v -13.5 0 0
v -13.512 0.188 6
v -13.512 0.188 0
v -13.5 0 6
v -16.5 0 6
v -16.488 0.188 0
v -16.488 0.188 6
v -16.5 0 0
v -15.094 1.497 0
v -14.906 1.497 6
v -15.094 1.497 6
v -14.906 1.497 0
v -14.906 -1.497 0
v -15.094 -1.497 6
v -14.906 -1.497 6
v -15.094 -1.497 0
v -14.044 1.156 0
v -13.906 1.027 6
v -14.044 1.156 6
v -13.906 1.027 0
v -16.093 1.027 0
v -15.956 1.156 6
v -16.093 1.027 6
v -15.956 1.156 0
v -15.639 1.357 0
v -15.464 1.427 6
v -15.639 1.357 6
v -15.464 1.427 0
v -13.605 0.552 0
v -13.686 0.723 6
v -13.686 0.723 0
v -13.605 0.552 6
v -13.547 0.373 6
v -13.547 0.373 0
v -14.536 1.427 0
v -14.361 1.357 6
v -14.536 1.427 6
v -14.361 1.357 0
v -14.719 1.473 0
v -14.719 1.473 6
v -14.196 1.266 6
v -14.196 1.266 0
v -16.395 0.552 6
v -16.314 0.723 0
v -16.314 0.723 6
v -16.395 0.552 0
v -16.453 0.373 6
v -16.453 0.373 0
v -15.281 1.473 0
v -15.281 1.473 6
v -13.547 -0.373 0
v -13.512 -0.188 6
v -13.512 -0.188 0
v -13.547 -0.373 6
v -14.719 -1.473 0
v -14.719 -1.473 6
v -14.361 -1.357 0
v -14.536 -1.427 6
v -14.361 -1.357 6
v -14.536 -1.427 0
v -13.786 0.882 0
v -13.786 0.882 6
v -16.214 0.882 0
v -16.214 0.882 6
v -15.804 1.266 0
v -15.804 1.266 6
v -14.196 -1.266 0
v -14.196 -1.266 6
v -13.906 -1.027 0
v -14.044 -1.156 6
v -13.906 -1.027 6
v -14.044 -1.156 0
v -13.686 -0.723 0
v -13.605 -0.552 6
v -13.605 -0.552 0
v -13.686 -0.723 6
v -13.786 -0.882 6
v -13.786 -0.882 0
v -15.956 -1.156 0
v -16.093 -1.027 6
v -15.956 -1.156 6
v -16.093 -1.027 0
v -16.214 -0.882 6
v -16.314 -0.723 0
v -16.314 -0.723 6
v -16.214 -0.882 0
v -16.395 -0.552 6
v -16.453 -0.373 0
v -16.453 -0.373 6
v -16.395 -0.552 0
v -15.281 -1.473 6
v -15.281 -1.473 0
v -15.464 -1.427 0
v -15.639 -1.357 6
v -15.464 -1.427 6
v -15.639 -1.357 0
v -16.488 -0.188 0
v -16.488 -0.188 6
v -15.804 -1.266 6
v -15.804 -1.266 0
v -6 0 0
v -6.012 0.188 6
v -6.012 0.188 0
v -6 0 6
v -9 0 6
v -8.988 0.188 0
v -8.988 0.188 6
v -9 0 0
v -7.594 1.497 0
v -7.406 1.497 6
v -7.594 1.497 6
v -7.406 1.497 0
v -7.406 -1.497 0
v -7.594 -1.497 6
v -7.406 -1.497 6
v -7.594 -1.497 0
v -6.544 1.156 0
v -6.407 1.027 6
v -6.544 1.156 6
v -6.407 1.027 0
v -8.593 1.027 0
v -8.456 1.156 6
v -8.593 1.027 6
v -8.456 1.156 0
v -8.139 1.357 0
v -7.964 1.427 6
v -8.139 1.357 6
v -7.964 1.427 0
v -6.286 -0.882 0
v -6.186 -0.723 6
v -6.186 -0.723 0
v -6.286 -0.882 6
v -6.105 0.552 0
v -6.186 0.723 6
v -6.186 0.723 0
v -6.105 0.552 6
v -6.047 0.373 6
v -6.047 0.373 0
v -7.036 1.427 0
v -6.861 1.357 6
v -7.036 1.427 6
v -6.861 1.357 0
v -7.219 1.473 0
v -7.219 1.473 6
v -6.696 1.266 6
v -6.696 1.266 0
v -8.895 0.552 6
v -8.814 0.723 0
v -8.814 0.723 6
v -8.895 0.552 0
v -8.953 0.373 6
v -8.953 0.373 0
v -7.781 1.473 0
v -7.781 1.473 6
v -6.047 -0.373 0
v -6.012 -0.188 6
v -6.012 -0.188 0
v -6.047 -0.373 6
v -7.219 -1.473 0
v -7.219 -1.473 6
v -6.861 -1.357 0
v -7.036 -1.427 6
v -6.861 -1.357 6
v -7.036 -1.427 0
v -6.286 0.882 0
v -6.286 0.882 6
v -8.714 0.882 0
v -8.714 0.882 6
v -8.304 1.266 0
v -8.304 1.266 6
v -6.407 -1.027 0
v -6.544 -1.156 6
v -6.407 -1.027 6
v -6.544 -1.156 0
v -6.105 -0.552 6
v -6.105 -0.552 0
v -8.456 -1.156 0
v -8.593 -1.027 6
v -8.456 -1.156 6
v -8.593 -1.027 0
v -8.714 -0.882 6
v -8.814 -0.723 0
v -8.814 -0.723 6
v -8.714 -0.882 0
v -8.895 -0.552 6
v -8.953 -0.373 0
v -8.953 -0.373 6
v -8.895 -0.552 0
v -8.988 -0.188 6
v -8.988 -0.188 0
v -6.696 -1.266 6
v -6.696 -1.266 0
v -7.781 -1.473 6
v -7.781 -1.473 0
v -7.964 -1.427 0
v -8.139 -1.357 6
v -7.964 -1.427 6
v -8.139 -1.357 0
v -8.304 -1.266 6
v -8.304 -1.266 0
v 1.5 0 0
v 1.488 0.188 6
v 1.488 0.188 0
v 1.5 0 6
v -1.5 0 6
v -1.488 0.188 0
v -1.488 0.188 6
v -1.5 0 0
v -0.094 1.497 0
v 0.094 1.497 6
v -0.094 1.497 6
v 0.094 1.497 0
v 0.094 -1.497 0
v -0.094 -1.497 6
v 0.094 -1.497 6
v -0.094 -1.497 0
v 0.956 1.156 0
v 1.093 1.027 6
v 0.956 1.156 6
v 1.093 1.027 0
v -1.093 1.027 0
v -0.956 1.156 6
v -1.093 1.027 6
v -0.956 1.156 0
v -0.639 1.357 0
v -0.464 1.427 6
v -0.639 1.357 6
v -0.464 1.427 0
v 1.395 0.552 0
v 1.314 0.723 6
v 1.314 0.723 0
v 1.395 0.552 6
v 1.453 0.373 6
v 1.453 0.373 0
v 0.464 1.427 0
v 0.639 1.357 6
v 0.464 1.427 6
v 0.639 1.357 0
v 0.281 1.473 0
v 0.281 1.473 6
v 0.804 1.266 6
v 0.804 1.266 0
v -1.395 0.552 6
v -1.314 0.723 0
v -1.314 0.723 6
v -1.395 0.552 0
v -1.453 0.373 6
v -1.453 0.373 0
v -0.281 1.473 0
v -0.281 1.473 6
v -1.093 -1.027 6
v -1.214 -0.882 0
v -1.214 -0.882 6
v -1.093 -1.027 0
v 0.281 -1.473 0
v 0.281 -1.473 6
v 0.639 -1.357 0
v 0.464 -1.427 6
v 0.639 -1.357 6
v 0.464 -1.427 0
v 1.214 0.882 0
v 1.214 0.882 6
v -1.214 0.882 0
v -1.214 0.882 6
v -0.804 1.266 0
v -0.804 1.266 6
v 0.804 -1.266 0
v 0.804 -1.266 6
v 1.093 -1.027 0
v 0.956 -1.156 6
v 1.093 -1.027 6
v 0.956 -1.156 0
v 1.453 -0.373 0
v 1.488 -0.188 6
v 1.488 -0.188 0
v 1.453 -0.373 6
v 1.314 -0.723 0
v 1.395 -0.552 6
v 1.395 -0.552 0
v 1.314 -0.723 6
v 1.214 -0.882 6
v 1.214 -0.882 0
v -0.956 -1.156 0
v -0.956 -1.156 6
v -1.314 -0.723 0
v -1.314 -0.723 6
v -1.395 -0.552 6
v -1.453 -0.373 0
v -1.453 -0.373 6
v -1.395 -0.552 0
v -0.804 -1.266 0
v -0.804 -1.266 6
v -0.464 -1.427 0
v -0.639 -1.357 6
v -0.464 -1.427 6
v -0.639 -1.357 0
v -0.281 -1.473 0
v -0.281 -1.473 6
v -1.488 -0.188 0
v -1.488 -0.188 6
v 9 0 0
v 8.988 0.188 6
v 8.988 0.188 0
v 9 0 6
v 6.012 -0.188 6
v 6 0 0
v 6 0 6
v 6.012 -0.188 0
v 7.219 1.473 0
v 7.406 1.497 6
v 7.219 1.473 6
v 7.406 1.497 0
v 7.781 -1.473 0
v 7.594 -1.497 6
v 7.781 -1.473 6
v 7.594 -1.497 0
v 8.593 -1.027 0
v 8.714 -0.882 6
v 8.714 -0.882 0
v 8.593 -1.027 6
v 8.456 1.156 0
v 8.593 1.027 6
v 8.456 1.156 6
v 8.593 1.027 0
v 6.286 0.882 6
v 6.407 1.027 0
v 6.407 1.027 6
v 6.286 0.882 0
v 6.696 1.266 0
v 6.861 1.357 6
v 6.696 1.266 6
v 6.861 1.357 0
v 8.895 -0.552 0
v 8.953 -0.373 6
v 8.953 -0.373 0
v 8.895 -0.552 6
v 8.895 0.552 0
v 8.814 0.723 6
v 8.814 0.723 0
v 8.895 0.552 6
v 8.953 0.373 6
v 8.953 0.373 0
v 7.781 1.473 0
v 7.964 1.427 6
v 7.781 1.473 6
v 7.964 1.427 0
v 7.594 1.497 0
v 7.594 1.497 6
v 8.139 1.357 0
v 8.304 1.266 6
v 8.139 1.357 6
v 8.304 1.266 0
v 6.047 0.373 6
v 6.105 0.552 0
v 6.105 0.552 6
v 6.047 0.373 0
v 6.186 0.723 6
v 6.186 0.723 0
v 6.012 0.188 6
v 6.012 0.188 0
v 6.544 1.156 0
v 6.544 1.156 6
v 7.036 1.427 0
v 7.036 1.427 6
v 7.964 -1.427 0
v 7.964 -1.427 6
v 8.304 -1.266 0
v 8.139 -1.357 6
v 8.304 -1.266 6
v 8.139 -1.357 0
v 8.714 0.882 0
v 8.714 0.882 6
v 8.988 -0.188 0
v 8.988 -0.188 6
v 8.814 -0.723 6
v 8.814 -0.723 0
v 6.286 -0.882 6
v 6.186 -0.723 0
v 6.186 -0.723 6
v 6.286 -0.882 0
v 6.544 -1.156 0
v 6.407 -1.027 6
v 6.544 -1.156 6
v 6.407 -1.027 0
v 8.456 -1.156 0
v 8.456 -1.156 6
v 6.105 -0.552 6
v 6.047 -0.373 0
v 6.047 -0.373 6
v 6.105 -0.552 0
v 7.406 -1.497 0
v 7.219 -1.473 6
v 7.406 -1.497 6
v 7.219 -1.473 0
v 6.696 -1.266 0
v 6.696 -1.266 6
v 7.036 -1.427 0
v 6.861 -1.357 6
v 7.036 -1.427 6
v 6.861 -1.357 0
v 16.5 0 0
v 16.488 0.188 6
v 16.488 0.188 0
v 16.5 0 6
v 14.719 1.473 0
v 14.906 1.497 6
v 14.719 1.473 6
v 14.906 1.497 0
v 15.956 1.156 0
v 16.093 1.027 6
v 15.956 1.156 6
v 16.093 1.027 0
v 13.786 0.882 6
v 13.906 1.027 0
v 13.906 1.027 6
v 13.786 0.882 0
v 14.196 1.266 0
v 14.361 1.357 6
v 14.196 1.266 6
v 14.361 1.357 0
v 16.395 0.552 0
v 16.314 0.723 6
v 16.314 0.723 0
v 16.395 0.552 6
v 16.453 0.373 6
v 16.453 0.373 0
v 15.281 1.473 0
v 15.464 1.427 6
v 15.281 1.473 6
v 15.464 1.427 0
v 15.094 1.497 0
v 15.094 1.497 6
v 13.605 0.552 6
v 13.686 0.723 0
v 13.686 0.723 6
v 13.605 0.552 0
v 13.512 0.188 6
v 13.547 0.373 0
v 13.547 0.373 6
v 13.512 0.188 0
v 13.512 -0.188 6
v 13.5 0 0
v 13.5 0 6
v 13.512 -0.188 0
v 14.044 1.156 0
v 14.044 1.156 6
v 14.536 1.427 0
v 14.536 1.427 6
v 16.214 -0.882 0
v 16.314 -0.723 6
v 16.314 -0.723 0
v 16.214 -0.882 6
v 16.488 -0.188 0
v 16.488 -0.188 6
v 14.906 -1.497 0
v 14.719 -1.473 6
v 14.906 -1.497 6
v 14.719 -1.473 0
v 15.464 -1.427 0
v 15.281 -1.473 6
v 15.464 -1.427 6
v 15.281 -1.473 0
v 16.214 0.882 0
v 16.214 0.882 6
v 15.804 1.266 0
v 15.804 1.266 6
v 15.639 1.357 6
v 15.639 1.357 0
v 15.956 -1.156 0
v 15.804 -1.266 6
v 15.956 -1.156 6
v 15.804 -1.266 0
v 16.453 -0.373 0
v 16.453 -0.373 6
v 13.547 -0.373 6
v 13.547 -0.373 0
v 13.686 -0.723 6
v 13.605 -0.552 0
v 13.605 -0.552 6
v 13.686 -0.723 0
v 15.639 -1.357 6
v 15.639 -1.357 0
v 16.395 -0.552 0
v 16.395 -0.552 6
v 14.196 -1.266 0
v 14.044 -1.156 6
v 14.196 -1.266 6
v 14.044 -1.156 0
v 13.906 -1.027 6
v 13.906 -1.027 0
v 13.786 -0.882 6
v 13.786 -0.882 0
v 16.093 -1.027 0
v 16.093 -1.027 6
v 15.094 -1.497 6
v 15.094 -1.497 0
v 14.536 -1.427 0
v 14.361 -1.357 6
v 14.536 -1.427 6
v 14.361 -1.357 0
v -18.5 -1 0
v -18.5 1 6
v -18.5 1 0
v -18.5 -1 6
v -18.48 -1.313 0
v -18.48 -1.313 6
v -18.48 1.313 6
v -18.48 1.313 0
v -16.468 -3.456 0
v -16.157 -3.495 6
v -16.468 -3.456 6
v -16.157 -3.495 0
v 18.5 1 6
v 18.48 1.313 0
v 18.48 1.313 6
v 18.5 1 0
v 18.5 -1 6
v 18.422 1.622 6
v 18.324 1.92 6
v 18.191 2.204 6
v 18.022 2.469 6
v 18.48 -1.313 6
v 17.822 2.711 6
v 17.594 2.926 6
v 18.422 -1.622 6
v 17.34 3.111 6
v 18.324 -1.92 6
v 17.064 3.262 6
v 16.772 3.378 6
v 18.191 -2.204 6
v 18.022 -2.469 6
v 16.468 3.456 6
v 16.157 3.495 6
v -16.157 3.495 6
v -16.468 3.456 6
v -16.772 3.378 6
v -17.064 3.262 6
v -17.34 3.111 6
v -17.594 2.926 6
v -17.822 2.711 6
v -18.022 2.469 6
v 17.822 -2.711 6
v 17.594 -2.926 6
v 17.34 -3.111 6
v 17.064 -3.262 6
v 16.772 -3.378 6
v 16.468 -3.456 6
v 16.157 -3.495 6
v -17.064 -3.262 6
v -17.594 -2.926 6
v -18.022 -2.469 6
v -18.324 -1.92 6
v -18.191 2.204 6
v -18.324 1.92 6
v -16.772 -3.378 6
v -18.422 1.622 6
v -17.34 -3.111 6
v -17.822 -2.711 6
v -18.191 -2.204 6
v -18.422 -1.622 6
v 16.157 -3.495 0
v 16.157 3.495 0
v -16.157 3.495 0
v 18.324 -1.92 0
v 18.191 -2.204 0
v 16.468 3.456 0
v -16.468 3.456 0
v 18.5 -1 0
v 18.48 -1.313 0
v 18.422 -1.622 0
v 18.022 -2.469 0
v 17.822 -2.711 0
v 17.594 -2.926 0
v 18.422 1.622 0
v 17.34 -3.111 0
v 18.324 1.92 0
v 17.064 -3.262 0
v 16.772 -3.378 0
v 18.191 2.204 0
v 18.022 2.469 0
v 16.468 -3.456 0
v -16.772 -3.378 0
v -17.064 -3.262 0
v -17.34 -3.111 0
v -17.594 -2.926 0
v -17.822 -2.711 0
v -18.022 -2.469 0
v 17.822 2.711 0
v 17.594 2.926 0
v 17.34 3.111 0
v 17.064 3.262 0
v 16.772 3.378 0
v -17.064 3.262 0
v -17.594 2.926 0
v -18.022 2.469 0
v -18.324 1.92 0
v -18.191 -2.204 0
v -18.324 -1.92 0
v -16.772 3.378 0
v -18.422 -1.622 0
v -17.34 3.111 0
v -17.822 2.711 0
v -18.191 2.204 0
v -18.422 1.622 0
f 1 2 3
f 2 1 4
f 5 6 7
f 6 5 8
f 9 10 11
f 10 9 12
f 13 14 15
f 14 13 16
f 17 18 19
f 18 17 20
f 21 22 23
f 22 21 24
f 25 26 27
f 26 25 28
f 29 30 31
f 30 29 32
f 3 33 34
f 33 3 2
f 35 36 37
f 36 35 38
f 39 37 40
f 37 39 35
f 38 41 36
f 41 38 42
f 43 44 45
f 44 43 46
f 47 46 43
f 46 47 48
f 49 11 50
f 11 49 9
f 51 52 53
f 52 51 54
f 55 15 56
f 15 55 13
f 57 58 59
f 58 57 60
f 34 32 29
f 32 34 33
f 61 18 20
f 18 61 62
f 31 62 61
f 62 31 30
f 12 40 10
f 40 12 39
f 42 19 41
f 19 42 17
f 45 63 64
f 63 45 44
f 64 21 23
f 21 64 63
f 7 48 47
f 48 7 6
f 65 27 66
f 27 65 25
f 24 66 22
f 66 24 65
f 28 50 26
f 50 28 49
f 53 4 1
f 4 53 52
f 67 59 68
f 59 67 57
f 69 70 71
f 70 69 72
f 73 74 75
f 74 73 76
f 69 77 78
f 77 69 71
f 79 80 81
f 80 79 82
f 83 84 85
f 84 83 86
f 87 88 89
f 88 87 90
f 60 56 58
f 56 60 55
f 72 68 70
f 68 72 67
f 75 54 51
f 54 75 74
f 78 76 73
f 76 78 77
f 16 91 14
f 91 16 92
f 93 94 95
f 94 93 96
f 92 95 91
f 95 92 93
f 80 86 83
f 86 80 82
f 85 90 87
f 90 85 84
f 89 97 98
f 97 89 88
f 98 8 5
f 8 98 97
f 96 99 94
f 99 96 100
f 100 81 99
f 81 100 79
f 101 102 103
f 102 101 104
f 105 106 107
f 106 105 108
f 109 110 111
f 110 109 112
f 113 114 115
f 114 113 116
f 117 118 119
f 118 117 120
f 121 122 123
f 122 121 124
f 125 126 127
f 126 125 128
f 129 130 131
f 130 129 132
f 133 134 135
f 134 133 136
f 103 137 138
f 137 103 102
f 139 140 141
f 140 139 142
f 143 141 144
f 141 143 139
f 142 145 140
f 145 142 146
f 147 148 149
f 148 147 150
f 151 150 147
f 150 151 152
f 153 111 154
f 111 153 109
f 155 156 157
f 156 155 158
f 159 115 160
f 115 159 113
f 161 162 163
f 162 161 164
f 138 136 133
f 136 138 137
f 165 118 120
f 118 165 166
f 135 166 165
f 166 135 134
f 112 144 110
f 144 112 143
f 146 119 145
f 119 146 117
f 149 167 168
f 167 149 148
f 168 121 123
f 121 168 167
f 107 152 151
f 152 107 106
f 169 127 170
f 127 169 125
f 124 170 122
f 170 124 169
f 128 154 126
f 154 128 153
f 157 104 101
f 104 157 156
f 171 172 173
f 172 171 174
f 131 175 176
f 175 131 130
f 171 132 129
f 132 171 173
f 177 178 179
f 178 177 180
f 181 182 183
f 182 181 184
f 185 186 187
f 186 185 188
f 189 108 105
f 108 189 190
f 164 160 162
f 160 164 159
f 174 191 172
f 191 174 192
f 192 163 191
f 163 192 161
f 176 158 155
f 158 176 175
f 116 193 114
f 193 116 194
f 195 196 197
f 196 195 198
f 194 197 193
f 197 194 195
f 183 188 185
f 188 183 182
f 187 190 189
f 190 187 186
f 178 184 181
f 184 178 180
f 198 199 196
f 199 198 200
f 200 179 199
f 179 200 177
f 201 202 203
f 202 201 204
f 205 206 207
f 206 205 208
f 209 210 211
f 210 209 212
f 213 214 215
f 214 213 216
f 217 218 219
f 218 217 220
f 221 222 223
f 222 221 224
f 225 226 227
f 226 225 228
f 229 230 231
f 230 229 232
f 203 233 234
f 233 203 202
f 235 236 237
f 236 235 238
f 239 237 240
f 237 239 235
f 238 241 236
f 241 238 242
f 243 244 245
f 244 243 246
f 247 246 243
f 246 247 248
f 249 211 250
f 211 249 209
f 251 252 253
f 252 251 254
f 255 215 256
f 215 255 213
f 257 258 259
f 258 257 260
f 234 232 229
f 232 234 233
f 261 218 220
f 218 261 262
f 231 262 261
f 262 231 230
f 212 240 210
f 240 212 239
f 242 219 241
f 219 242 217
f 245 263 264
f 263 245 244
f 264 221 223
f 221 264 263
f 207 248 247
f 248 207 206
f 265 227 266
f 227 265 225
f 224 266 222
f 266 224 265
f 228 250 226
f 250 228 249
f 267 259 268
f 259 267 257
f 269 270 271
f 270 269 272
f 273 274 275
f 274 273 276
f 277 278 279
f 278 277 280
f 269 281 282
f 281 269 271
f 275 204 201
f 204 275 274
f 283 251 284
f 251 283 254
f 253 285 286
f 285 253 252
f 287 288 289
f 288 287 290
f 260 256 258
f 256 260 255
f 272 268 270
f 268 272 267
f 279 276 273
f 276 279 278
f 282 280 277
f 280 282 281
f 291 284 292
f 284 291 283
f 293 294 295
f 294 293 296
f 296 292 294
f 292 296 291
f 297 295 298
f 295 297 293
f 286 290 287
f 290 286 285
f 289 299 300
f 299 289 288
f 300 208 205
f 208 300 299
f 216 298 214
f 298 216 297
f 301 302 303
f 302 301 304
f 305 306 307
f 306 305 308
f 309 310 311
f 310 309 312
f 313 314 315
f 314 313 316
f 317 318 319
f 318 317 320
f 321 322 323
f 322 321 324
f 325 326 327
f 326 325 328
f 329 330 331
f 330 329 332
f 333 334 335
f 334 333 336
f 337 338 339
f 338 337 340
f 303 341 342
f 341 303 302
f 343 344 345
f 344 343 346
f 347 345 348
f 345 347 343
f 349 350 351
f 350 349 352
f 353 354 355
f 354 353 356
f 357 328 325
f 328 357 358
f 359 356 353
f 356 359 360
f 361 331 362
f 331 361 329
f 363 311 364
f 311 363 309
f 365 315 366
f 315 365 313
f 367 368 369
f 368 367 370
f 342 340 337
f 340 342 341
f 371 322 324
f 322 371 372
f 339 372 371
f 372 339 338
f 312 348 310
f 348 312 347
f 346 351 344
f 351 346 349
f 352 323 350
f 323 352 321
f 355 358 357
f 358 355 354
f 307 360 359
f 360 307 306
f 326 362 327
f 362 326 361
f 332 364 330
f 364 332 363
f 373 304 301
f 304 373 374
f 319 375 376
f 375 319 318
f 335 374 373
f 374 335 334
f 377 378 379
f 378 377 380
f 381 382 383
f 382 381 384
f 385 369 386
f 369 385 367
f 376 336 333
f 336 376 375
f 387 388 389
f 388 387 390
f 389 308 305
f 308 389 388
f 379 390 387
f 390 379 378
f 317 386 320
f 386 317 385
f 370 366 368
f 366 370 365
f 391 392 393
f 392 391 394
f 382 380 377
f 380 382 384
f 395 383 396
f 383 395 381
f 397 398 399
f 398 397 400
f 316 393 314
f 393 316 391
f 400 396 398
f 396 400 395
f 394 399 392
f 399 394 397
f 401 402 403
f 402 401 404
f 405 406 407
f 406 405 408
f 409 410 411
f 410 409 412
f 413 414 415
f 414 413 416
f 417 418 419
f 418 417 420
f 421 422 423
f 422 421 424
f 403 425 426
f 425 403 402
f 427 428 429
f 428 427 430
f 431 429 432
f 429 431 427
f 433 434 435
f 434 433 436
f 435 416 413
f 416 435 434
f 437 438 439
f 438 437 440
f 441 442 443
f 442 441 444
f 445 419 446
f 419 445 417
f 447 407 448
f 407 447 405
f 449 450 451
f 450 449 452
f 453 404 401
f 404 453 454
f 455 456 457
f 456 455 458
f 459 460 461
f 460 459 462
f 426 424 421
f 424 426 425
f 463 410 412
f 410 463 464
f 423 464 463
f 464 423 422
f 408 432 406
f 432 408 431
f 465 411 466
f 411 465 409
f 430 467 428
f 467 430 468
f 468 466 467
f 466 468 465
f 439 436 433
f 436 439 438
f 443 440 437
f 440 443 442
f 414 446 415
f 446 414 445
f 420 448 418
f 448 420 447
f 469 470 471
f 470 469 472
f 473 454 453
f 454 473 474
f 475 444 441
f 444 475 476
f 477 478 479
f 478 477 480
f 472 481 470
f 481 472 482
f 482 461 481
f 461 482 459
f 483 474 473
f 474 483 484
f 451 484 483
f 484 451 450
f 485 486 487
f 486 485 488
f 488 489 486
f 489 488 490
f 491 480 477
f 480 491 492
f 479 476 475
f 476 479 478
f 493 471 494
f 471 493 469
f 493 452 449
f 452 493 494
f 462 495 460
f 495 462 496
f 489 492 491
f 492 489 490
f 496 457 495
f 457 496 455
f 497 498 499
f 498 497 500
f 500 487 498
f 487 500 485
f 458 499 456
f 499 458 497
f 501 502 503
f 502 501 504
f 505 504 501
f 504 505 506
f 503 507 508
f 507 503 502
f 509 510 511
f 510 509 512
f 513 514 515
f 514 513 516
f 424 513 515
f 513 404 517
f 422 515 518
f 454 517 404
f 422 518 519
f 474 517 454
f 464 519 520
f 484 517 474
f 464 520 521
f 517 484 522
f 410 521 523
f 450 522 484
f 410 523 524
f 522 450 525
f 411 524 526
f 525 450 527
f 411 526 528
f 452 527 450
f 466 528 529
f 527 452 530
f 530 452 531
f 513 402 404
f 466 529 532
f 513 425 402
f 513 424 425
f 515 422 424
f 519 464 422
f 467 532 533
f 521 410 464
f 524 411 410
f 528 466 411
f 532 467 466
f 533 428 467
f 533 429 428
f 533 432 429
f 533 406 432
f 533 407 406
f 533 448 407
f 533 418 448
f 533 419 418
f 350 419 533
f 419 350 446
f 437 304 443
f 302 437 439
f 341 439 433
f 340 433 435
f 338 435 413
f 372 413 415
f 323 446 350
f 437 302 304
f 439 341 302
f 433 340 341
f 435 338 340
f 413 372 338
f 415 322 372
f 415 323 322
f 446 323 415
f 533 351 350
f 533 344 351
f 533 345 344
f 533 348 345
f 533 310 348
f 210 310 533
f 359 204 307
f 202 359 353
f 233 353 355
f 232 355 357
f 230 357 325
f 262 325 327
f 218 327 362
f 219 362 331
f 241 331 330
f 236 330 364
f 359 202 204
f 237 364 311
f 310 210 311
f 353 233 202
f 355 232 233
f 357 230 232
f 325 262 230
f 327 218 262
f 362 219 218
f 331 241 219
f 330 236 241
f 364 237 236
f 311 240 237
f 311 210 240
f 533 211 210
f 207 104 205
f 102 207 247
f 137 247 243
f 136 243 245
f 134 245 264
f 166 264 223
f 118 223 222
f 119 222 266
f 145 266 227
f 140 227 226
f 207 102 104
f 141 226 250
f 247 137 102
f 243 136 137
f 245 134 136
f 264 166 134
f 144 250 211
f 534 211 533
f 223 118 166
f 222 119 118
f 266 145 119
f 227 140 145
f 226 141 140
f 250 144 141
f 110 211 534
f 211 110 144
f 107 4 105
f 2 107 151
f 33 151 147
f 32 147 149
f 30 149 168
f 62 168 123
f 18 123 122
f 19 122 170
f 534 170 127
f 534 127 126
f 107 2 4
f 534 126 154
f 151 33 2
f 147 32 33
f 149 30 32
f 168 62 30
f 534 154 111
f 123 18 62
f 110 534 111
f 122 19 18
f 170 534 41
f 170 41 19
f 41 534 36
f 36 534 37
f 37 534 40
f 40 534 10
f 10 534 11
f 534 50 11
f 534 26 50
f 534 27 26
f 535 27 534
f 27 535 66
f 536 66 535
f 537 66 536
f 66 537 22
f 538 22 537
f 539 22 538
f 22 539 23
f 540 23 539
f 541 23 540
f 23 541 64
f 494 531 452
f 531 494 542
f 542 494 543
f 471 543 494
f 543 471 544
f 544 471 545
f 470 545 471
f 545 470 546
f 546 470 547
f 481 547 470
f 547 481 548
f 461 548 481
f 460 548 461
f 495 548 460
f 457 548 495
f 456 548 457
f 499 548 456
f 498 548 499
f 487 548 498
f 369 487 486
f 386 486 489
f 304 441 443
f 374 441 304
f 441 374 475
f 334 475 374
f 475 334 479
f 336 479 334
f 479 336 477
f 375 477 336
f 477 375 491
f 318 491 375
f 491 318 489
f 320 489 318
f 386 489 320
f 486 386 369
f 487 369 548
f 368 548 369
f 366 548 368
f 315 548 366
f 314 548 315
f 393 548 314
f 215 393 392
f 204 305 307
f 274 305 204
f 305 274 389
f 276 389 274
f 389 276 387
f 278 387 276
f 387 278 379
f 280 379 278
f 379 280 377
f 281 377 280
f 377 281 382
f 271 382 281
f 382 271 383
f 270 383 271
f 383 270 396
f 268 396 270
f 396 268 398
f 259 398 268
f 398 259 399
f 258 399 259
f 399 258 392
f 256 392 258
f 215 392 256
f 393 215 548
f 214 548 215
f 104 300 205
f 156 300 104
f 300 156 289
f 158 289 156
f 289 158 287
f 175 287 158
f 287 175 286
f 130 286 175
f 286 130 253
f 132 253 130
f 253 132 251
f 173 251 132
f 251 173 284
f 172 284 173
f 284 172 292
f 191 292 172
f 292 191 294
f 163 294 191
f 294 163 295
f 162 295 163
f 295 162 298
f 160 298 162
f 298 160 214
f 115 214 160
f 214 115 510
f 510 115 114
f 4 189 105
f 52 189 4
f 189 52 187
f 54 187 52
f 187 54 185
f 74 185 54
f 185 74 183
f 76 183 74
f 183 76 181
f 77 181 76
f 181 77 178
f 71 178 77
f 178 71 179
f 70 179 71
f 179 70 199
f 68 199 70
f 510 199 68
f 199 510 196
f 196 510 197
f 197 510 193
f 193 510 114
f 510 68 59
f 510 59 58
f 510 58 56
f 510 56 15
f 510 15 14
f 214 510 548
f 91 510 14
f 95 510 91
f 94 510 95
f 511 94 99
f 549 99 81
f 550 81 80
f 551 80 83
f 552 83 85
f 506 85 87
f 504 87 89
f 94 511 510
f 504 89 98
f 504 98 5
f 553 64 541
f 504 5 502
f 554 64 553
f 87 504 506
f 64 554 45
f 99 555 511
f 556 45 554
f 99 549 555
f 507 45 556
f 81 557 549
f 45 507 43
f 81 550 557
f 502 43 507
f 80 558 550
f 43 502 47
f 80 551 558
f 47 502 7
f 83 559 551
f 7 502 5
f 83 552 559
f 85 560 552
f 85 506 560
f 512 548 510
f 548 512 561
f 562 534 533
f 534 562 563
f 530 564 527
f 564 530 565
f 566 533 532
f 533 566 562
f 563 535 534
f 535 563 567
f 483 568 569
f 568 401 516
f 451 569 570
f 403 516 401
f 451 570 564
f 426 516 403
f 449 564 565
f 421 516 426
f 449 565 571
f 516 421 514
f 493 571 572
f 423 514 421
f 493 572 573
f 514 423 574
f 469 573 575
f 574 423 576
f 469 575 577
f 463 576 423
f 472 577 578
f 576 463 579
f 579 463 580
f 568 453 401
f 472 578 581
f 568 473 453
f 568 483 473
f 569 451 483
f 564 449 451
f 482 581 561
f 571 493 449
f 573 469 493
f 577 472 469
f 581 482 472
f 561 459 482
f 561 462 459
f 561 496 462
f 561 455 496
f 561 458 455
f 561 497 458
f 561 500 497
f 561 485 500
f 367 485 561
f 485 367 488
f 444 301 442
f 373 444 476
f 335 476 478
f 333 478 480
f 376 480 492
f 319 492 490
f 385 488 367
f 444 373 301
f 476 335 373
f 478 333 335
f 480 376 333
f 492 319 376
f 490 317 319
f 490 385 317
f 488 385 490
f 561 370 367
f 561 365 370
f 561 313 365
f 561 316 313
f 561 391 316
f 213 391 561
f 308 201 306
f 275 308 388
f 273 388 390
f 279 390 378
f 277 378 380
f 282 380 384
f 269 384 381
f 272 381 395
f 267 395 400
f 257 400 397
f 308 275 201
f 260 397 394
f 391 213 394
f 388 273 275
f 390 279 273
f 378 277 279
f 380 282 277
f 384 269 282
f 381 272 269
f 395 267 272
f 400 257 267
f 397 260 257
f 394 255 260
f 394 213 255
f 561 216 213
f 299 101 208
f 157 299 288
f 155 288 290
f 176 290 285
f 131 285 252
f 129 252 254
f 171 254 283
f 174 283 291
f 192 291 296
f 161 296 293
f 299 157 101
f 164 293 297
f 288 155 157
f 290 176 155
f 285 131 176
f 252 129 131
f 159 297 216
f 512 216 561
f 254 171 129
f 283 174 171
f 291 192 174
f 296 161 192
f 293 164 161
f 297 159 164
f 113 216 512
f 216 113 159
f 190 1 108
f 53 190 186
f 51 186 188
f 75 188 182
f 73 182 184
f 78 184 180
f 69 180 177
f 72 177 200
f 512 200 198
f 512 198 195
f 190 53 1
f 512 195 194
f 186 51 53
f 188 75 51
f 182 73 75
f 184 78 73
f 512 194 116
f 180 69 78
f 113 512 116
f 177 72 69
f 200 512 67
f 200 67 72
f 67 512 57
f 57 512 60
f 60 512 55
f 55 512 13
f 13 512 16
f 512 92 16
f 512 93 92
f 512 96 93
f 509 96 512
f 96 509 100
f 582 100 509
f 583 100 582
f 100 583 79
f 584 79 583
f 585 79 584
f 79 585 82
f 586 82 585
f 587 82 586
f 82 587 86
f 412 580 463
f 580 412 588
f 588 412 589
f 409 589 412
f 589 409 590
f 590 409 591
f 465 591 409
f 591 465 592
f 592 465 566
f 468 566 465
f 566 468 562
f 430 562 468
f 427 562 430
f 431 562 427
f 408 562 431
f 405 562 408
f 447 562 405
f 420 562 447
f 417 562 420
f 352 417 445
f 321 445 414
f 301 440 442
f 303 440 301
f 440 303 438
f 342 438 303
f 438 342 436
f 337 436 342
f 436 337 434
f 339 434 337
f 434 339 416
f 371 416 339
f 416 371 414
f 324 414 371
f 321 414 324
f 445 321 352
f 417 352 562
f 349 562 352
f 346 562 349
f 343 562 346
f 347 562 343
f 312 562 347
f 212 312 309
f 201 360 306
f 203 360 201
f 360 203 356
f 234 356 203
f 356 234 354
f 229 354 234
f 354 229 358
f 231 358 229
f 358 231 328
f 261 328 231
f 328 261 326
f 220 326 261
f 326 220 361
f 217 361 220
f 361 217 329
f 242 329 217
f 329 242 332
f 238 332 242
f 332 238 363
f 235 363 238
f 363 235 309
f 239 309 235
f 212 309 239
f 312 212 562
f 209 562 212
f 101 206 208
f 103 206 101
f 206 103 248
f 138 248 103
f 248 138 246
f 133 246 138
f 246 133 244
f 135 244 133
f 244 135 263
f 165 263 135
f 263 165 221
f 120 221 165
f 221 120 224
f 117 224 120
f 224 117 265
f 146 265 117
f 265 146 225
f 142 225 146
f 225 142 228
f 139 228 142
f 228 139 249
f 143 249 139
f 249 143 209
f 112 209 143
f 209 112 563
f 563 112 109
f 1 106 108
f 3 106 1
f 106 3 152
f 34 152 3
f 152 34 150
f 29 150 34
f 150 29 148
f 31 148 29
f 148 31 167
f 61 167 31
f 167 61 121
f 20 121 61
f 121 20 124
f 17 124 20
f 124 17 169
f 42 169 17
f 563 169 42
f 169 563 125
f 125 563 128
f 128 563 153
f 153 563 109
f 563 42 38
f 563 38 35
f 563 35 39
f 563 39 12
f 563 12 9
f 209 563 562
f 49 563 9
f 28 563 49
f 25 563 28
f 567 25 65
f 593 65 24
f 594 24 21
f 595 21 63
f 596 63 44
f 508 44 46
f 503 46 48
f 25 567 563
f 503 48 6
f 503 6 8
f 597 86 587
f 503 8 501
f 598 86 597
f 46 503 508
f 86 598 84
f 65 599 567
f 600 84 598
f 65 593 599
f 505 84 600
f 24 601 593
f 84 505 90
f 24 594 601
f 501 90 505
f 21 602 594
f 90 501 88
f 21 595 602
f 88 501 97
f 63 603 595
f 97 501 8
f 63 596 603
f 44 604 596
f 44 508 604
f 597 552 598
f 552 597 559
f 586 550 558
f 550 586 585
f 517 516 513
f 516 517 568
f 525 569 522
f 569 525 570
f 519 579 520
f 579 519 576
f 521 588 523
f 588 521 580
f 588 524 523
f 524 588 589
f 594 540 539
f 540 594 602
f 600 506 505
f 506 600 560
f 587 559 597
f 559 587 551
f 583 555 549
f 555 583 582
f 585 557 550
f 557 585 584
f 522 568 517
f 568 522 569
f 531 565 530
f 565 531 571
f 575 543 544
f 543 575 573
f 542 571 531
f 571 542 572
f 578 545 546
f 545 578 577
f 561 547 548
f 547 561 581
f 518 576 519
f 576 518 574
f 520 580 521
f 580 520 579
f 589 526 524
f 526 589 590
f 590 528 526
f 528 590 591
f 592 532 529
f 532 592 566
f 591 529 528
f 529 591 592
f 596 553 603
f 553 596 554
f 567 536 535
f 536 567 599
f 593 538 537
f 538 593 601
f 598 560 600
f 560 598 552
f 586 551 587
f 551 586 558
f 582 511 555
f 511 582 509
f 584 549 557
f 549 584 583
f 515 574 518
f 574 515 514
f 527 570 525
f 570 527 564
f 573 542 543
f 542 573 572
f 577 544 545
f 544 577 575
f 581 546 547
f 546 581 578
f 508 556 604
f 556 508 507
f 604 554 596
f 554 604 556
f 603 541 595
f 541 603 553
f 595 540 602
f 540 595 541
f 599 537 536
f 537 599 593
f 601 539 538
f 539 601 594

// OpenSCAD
$fn = 50;


difference() {
	union() {
		translate(v = [0, 0, 0]) {
			rotate(a = [0, 0, 0]) {
				hull() {
					translate(v = [-16.0000000000, 1.0000000000, 0]) {
						rotate(a = [0, 0, 0]) {
							translate(v = [0, 0, 0]) {
								rotate(a = [0, 0, 0]) {
									cylinder(h = 6, r = 2.5000000000);
								}
							}
						}
					}
					translate(v = [16.0000000000, 1.0000000000, 0]) {
						rotate(a = [0, 0, 0]) {
							translate(v = [0, 0, 0]) {
								rotate(a = [0, 0, 0]) {
									cylinder(h = 6, r = 2.5000000000);
								}
							}
						}
					}
					translate(v = [-16.0000000000, -1.0000000000, 0]) {
						rotate(a = [0, 0, 0]) {
							translate(v = [0, 0, 0]) {
								rotate(a = [0, 0, 0]) {
									cylinder(h = 6, r = 2.5000000000);
								}
							}
						}
					}
					translate(v = [16.0000000000, -1.0000000000, 0]) {
						rotate(a = [0, 0, 0]) {
							translate(v = [0, 0, 0]) {
								rotate(a = [0, 0, 0]) {
									cylinder(h = 6, r = 2.5000000000);
								}
							}
						}
					}
				}
			}
		}
	}
	union() {
		translate(v = [-15.0000000000, 0.0000000000, 0]) {
			rotate(a = [0, 0, 0]) {
				translate(v = [0, 0, -50]) {
					rotate(a = [0, 0, 0]) {
						cylinder(h = 100, r = 1.5000000000);
					}
				}
			}
		}
		translate(v = [-7.5000000000, 0.0000000000, 0]) {
			rotate(a = [0, 0, 0]) {
				translate(v = [0, 0, -50]) {
					rotate(a = [0, 0, 0]) {
						cylinder(h = 100, r = 1.5000000000);
					}
				}
			}
		}
		translate(v = [0.0000000000, 0.0000000000, 0]) {
			rotate(a = [0, 0, 0]) {
				translate(v = [0, 0, -50]) {
					rotate(a = [0, 0, 0]) {
						cylinder(h = 100, r = 1.5000000000);
					}
				}
			}
		}
		translate(v = [7.5000000000, 0.0000000000, 0]) {
			rotate(a = [0, 0, 0]) {
				translate(v = [0, 0, -50]) {
					rotate(a = [0, 0, 0]) {
						cylinder(h = 100, r = 1.5000000000);
					}
				}
			}
		}
		translate(v = [15.0000000000, 0.0000000000, 0]) {
			rotate(a = [0, 0, 0]) {
				translate(v = [0, 0, -50]) {
					rotate(a = [0, 0, 0]) {
						cylinder(h = 100, r = 1.5000000000);
					}
				}
			}
		}
	}
}
